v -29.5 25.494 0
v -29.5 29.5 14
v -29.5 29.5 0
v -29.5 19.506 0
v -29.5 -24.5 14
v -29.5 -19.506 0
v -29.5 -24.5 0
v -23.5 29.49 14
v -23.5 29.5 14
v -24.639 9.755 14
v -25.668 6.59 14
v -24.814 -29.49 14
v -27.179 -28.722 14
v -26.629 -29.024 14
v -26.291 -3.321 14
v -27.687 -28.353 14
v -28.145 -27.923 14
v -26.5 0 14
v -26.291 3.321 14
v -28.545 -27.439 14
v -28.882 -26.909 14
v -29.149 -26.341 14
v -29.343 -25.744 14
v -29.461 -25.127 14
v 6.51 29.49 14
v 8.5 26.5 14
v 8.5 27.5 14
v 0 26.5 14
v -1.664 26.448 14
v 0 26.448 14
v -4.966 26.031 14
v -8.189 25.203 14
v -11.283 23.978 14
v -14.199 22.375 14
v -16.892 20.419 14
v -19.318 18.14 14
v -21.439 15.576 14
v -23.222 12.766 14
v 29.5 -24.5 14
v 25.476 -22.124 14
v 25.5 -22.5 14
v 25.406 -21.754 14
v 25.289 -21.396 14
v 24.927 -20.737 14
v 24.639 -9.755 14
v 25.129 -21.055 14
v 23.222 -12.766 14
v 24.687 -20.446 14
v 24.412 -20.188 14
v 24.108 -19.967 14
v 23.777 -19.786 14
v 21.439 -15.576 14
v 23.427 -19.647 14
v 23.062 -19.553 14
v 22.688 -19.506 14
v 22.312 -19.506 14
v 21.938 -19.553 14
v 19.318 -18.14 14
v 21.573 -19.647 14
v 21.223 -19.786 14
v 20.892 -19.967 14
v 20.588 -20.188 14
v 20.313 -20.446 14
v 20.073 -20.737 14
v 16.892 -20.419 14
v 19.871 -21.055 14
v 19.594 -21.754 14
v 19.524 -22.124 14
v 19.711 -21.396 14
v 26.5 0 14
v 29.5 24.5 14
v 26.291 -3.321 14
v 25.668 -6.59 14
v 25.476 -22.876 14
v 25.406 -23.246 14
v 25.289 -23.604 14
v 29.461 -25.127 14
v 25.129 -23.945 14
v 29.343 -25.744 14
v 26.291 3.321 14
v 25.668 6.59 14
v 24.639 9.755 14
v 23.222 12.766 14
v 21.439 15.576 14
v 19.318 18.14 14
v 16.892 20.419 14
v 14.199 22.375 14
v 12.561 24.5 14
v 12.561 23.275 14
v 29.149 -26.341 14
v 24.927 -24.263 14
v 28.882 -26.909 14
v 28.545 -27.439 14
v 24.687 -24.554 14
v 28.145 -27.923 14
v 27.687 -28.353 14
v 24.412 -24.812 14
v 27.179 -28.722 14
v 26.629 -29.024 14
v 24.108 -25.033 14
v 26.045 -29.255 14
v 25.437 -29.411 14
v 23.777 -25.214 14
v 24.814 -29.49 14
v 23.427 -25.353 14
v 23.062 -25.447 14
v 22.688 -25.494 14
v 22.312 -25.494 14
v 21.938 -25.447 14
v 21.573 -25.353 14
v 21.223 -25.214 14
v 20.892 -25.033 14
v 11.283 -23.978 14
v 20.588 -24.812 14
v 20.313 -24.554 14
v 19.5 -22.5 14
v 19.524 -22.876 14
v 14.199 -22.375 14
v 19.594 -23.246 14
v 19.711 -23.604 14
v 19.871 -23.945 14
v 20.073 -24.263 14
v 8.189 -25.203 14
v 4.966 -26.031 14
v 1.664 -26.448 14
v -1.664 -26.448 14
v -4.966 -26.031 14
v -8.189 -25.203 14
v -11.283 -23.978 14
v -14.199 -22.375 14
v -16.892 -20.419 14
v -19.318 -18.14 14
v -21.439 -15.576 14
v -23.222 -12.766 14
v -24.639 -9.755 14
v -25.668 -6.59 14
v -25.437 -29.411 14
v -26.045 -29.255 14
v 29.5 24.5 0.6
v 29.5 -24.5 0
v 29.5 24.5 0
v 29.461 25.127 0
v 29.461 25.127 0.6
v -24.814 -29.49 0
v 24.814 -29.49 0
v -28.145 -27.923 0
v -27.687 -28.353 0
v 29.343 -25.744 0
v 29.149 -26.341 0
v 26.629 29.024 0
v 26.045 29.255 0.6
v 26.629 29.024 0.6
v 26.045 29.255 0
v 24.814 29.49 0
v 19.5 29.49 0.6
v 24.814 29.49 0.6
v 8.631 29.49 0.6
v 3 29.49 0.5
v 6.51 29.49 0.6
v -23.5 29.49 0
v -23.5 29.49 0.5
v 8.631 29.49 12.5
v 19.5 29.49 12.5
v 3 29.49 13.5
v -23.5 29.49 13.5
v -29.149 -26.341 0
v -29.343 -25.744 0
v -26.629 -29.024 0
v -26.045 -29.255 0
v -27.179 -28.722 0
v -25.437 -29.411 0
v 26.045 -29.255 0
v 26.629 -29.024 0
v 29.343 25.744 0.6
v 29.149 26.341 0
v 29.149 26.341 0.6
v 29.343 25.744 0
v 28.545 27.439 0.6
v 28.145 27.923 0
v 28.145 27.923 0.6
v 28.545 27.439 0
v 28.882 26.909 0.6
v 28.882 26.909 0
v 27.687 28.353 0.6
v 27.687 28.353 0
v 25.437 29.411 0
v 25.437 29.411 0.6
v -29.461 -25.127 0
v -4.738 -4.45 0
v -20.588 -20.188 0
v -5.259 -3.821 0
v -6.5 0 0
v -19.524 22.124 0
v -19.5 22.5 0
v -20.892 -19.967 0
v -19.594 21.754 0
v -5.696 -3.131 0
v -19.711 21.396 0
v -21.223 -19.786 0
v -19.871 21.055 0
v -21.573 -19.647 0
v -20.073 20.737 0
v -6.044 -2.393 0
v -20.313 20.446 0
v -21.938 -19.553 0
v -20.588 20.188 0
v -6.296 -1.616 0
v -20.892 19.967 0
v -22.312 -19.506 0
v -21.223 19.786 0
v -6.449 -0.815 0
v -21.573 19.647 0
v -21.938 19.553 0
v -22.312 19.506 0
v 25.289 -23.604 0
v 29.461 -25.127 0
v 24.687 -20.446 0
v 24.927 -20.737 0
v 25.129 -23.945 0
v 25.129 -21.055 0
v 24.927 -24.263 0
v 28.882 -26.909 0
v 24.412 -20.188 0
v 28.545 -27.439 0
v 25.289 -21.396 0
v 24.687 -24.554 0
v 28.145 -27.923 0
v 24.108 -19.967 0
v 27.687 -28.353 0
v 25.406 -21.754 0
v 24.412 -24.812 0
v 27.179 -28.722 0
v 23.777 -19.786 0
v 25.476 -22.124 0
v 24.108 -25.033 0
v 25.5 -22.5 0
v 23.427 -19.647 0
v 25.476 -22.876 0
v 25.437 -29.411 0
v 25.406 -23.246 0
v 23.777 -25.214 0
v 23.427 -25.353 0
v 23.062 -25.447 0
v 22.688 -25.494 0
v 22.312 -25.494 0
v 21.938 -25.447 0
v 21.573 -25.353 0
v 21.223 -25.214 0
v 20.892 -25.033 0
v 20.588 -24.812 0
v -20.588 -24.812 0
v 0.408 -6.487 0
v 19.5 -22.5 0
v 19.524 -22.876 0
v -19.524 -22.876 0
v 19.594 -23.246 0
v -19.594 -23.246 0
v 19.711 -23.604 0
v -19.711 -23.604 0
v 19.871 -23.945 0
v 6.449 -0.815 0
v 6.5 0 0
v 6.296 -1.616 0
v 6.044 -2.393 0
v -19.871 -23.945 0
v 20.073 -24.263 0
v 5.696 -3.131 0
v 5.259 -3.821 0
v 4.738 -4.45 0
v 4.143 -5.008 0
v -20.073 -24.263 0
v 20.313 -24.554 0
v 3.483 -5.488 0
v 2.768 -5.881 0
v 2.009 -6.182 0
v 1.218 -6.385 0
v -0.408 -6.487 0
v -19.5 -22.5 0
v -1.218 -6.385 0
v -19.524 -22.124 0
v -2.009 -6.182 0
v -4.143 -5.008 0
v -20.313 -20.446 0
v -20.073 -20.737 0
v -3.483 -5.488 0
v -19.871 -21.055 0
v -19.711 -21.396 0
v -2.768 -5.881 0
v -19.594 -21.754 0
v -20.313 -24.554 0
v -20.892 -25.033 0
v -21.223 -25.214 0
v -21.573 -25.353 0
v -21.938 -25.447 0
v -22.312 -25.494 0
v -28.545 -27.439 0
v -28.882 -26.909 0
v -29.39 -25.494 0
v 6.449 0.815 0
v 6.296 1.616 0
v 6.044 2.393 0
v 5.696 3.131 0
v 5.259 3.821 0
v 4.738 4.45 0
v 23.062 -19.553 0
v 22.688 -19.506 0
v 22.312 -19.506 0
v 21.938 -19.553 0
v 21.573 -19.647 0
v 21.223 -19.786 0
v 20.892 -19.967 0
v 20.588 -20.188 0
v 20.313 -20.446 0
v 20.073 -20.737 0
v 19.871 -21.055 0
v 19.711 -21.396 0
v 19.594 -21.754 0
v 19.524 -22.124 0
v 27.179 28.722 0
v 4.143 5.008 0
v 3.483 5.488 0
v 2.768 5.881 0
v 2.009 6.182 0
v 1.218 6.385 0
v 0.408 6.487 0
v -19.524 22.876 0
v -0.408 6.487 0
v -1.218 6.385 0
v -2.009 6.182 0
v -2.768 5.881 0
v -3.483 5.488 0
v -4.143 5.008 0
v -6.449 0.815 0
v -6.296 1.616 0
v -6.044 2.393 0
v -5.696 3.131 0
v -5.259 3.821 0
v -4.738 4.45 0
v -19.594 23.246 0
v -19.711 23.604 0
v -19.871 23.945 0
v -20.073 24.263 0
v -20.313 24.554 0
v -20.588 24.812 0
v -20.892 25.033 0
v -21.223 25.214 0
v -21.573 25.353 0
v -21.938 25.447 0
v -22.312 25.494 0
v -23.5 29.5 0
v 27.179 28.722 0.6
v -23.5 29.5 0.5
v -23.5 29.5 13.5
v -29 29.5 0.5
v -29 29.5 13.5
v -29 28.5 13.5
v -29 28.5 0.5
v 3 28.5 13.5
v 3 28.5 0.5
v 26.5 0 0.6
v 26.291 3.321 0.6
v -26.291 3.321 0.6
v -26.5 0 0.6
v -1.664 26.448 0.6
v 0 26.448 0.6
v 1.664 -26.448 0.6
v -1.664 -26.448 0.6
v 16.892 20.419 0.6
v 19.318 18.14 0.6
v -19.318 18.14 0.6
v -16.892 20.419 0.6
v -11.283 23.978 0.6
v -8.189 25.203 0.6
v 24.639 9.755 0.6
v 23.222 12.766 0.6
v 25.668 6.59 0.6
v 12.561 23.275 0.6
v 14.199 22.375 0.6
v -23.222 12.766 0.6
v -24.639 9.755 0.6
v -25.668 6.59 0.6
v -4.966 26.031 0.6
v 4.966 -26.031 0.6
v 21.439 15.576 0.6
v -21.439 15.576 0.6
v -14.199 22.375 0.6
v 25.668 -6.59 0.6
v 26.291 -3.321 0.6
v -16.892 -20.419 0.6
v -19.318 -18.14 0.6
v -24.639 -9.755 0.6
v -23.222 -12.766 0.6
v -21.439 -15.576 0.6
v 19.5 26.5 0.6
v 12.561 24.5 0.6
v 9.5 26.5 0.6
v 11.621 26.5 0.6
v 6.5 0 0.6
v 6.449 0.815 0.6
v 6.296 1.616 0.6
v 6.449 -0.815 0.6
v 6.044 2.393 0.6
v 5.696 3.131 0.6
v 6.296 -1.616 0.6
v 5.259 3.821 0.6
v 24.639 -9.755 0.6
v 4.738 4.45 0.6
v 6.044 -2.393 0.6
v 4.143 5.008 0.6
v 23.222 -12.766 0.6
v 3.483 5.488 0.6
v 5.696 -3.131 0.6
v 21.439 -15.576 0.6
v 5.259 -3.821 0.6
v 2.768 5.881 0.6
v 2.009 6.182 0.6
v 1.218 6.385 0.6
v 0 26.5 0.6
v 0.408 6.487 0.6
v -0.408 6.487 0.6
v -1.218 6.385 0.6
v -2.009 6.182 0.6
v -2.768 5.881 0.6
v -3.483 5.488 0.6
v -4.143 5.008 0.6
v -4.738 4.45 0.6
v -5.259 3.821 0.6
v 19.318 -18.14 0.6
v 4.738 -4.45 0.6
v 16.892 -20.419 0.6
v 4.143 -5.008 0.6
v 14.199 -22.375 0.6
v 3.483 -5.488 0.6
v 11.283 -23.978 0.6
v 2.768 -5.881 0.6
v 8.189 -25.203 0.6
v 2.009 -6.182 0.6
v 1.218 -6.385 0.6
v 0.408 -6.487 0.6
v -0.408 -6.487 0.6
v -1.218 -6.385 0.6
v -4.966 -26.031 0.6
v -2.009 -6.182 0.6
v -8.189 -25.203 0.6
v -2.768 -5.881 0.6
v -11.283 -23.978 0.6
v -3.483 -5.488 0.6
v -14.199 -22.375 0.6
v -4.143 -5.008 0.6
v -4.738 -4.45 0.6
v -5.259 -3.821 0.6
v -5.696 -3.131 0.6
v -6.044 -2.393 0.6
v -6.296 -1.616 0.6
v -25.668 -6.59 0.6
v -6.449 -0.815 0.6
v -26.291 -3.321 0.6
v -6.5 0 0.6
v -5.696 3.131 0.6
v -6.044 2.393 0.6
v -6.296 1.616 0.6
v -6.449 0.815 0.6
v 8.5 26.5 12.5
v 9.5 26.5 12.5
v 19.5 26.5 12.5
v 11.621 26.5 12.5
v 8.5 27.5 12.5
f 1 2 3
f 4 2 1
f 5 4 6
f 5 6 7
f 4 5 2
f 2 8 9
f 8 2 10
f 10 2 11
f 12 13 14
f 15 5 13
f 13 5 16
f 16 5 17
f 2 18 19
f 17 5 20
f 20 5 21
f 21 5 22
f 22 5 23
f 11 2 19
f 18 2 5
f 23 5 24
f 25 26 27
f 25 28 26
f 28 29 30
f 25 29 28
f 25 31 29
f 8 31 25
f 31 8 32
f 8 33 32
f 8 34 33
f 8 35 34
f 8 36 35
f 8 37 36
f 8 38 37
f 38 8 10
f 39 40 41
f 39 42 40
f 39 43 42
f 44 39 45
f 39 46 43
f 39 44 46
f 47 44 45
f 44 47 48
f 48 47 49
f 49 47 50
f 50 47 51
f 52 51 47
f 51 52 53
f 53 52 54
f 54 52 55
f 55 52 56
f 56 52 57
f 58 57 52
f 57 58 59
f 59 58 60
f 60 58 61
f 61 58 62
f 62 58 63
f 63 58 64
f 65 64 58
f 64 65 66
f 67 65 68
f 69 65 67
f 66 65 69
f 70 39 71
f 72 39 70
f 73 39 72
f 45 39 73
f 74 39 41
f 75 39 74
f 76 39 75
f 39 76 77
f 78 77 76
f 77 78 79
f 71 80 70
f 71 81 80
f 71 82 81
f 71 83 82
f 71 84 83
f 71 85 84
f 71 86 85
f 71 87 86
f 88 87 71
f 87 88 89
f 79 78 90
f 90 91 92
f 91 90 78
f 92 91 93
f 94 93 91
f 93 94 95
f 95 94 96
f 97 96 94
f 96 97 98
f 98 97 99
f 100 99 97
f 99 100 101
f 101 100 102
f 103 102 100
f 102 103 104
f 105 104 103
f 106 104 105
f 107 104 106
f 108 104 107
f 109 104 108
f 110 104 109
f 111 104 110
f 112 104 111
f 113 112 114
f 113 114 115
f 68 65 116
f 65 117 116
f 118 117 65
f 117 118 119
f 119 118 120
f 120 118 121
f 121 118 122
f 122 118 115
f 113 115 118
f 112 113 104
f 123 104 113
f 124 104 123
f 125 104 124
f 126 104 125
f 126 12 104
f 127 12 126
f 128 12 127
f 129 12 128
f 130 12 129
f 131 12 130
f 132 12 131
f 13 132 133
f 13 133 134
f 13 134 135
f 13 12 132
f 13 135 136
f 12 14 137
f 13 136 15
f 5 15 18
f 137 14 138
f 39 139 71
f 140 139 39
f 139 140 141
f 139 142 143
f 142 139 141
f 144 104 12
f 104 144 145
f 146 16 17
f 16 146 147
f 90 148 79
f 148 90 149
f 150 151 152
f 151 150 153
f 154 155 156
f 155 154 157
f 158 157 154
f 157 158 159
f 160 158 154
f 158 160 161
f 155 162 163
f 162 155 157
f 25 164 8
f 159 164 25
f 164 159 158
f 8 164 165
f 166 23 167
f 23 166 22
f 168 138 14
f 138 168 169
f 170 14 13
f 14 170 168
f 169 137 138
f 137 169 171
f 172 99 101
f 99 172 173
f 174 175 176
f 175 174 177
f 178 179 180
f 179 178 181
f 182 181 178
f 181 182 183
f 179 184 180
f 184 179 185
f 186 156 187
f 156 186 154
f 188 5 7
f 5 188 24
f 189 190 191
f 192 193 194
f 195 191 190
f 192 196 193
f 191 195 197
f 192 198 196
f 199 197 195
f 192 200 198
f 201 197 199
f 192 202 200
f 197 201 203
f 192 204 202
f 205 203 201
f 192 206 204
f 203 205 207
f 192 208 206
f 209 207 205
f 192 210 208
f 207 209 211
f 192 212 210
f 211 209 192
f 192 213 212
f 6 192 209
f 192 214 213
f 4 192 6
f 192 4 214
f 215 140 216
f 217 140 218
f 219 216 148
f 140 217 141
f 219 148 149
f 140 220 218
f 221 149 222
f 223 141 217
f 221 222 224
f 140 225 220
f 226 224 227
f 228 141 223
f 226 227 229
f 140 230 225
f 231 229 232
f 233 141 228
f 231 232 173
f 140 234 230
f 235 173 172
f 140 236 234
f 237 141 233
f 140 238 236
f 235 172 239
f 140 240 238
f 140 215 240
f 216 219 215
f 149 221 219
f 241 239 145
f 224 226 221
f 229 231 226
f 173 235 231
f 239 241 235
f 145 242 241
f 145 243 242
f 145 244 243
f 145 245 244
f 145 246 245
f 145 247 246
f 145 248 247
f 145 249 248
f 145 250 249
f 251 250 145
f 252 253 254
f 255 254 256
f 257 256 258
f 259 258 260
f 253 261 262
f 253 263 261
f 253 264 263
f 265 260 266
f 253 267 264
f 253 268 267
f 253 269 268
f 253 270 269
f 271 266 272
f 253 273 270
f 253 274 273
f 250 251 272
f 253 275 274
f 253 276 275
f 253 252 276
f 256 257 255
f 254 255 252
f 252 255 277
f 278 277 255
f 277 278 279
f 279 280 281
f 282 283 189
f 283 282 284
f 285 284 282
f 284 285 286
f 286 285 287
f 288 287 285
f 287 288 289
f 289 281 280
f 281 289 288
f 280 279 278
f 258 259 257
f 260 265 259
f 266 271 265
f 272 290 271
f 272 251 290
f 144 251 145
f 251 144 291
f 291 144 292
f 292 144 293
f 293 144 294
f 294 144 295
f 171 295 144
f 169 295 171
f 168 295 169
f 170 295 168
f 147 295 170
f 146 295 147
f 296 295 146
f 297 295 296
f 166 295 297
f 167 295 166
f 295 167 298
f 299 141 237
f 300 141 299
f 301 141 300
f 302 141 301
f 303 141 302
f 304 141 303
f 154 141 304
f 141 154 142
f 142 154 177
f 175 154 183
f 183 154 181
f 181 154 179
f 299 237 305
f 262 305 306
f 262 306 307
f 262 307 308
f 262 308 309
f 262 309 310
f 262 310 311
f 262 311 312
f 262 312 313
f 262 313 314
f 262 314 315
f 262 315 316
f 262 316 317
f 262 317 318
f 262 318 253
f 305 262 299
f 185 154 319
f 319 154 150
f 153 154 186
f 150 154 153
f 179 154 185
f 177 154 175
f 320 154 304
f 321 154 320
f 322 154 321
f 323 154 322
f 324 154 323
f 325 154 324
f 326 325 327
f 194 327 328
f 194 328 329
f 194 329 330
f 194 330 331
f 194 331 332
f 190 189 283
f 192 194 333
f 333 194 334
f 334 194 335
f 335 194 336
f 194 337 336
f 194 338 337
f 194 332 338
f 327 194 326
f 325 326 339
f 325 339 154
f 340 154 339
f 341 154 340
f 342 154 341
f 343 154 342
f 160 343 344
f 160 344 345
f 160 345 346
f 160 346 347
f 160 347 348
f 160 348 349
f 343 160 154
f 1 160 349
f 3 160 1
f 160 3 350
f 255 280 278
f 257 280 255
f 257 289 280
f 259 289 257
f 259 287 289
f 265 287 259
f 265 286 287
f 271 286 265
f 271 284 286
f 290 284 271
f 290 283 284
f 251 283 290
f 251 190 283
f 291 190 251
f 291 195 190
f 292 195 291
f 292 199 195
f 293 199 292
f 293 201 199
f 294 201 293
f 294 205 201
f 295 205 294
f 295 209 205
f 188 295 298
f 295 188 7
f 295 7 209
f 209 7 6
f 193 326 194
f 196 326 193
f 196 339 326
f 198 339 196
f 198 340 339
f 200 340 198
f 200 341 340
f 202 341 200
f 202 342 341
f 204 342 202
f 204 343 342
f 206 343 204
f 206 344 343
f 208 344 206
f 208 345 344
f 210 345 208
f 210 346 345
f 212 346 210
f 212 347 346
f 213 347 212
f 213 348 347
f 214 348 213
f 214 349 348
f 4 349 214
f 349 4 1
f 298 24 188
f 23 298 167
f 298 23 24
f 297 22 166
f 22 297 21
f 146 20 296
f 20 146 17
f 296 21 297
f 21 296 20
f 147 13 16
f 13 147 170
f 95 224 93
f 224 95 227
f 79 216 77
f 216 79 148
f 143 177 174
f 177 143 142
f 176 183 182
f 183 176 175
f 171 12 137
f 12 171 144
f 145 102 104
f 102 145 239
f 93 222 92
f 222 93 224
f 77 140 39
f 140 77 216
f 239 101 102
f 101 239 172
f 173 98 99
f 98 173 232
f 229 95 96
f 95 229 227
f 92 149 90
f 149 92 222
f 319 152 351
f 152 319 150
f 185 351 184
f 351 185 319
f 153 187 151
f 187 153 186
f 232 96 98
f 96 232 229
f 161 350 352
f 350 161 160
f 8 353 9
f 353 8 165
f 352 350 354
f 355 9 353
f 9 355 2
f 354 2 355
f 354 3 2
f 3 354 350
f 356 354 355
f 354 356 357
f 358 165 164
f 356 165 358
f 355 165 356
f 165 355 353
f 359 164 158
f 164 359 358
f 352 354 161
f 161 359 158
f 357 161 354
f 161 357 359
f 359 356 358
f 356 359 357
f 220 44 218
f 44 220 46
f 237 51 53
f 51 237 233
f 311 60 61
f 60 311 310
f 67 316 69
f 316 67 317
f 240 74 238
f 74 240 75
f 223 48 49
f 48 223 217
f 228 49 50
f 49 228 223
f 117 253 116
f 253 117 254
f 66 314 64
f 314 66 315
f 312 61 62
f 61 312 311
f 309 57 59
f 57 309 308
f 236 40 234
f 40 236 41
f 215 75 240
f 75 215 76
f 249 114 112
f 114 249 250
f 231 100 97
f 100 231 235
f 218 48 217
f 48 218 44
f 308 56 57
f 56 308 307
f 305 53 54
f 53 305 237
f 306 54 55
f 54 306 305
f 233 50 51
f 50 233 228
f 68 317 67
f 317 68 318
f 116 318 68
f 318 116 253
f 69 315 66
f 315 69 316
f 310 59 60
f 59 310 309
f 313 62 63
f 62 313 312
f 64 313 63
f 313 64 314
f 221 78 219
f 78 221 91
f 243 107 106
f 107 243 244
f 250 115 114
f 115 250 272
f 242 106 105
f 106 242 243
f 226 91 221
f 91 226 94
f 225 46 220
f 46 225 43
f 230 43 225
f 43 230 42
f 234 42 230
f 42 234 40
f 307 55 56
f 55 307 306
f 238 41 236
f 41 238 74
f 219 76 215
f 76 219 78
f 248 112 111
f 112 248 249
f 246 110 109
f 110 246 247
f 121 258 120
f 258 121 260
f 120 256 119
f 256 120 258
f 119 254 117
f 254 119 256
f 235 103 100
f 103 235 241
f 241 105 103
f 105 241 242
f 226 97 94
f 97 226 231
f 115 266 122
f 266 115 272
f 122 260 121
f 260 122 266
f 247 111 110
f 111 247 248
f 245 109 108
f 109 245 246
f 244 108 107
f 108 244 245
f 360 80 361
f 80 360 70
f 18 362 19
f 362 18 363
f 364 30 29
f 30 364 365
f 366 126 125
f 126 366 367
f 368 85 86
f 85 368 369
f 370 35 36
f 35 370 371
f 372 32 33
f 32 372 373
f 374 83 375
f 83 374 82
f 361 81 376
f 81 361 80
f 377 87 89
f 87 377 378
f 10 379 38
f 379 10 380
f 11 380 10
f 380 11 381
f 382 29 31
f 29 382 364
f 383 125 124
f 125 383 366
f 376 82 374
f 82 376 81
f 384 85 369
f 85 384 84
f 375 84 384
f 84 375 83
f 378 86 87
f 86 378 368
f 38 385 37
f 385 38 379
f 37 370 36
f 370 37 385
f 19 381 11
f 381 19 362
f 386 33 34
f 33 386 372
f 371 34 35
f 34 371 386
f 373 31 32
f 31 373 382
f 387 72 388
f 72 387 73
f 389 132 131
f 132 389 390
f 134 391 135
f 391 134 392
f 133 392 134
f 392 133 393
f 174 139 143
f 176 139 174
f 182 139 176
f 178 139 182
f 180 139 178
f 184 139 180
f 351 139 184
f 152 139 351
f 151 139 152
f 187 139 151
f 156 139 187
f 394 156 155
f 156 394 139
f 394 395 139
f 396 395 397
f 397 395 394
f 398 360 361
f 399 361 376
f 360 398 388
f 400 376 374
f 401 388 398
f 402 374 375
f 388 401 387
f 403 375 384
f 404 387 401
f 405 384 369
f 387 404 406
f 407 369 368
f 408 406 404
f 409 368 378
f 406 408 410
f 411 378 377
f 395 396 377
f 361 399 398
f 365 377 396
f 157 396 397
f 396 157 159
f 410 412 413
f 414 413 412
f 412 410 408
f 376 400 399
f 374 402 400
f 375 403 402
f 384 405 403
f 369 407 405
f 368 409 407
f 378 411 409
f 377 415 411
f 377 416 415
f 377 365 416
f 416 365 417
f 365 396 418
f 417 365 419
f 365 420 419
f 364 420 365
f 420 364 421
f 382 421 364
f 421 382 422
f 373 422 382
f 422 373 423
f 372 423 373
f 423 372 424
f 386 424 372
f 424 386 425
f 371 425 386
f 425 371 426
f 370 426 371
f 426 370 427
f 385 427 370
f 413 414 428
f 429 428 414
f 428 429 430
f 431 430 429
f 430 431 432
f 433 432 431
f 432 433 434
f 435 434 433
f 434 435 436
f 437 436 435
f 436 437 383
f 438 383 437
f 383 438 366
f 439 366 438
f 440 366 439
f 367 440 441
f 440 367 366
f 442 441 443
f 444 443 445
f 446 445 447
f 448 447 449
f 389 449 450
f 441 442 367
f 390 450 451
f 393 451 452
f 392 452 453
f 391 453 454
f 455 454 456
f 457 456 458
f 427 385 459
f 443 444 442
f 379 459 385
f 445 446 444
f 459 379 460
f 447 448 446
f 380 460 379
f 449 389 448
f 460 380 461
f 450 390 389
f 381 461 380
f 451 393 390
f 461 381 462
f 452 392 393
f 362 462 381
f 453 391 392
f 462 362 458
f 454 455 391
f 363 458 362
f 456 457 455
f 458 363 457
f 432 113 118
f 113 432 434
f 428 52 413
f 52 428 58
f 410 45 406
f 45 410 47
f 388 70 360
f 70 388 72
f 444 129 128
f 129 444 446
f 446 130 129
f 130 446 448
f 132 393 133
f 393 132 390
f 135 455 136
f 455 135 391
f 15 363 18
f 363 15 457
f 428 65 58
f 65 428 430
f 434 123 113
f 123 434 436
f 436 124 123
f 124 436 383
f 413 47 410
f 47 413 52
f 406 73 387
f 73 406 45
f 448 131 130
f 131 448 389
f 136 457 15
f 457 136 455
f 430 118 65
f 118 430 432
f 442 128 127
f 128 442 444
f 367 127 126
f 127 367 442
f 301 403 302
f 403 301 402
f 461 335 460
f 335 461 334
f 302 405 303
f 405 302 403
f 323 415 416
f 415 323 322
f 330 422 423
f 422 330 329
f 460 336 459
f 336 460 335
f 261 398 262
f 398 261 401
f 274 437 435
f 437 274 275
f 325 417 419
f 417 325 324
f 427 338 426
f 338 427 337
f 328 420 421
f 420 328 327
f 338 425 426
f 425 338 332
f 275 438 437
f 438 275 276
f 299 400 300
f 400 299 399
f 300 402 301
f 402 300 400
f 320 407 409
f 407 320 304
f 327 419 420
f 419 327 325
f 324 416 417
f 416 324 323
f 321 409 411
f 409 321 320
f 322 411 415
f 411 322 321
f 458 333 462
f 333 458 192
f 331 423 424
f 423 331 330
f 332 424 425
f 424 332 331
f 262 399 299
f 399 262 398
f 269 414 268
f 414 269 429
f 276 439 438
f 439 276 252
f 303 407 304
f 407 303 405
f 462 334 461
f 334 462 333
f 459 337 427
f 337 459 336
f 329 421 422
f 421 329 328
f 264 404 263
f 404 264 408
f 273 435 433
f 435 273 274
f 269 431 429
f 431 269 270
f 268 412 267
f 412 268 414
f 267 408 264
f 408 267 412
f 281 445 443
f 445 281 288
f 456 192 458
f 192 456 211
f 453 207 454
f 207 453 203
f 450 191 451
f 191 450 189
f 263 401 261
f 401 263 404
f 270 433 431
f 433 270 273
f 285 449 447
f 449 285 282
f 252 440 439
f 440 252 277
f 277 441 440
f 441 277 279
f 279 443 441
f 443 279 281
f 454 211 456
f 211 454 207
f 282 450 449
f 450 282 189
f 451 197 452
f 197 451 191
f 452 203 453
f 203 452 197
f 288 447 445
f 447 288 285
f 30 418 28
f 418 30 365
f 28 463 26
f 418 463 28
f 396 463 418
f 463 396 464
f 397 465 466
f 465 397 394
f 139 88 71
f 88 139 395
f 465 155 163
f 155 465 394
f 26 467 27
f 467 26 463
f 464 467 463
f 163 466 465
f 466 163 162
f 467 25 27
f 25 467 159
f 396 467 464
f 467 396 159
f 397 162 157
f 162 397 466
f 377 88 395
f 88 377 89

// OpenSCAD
$fn = 50;


difference() {
	union() {
		hull() {
			translate(v = [-24.5000000000, 24.5000000000, 0]) {
				cylinder(h = 14, r = 5);
			}
			translate(v = [24.5000000000, 24.5000000000, 0]) {
				cylinder(h = 14, r = 5);
			}
			translate(v = [-24.5000000000, -24.5000000000, 0]) {
				cylinder(h = 14, r = 5);
			}
			translate(v = [24.5000000000, -24.5000000000, 0]) {
				cylinder(h = 14, r = 5);
			}
		}
		translate(v = [-29.5000000000, 23.5000000000, 0]) {
			cube(size = [6, 6, 14]);
		}
	}
	union() {
		translate(v = [-30.0000000000, -22.5000000000, -250.0000000000]) {
			rotate(a = [0, 0, 0]) {
				difference() {
					union() {
						hull() {
							translate(v = [7.5000000000, 0, 0]) {
								cylinder(h = 250, r = 3.0000000000, r1 = 3.0000000000, r2 = 3.0000000000);
							}
							translate(v = [-7.5000000000, 0, 0]) {
								cylinder(h = 250, r = 3.0000000000, r1 = 3.0000000000, r2 = 3.0000000000);
							}
						}
					}
					union();
				}
			}
		}
		translate(v = [-30.0000000000, 22.5000000000, -250.0000000000]) {
			rotate(a = [0, 0, 0]) {
				difference() {
					union() {
						hull() {
							translate(v = [7.5000000000, 0, 0]) {
								cylinder(h = 250, r = 3.0000000000, r1 = 3.0000000000, r2 = 3.0000000000);
							}
							translate(v = [-7.5000000000, 0, 0]) {
								cylinder(h = 250, r = 3.0000000000, r1 = 3.0000000000, r2 = 3.0000000000);
							}
						}
					}
					union();
				}
			}
		}
		translate(v = [-29.0000000000, 28.5000000000, 0.5000000000]) {
			cube(size = [32, 1, 13.0000000000]);
		}
		translate(v = [22.5000000000, -22.5000000000, -50.0000000000]) {
			cylinder(h = 100, r = 3.0000000000);
		}
		translate(v = [0, 0, 0.6000000000]) {
			cylinder(h = 16.4000000000, r = 26.5000000000);
		}
		translate(v = [0, 0, -7.0000000000]) {
			cylinder(h = 14, r = 6.5000000000);
		}
		translate(v = [0.0000000000, 24.5000000000, 0.6000000000]) {
			cube(size = [29.5000000000, 2, 16.4000000000]);
		}
		translate(v = [19.5000000000, 24.5000000000, 0.6000000000]) {
			cube(size = [10, 5, 16.4000000000]);
		}
		translate(v = [8.5000000000, 24.5000000000, 12.5000000000]) {
			cube(size = [21, 5, 1.5000000000]);
		}
		translate(v = [5.7500000000, 30.2500000000, 0.6000000000]) {
			rotate(a = [0, 0, -45]) {
				cube(size = [7.5000000000, 1.5000000000, 16.4000000000]);
			}
		}
		translate(v = [5.0610000000, 22.5000000000, 0.6000000000]) {
			cube(size = [7.5000000000, 2, 13.4000000000]);
		}
	}
}
